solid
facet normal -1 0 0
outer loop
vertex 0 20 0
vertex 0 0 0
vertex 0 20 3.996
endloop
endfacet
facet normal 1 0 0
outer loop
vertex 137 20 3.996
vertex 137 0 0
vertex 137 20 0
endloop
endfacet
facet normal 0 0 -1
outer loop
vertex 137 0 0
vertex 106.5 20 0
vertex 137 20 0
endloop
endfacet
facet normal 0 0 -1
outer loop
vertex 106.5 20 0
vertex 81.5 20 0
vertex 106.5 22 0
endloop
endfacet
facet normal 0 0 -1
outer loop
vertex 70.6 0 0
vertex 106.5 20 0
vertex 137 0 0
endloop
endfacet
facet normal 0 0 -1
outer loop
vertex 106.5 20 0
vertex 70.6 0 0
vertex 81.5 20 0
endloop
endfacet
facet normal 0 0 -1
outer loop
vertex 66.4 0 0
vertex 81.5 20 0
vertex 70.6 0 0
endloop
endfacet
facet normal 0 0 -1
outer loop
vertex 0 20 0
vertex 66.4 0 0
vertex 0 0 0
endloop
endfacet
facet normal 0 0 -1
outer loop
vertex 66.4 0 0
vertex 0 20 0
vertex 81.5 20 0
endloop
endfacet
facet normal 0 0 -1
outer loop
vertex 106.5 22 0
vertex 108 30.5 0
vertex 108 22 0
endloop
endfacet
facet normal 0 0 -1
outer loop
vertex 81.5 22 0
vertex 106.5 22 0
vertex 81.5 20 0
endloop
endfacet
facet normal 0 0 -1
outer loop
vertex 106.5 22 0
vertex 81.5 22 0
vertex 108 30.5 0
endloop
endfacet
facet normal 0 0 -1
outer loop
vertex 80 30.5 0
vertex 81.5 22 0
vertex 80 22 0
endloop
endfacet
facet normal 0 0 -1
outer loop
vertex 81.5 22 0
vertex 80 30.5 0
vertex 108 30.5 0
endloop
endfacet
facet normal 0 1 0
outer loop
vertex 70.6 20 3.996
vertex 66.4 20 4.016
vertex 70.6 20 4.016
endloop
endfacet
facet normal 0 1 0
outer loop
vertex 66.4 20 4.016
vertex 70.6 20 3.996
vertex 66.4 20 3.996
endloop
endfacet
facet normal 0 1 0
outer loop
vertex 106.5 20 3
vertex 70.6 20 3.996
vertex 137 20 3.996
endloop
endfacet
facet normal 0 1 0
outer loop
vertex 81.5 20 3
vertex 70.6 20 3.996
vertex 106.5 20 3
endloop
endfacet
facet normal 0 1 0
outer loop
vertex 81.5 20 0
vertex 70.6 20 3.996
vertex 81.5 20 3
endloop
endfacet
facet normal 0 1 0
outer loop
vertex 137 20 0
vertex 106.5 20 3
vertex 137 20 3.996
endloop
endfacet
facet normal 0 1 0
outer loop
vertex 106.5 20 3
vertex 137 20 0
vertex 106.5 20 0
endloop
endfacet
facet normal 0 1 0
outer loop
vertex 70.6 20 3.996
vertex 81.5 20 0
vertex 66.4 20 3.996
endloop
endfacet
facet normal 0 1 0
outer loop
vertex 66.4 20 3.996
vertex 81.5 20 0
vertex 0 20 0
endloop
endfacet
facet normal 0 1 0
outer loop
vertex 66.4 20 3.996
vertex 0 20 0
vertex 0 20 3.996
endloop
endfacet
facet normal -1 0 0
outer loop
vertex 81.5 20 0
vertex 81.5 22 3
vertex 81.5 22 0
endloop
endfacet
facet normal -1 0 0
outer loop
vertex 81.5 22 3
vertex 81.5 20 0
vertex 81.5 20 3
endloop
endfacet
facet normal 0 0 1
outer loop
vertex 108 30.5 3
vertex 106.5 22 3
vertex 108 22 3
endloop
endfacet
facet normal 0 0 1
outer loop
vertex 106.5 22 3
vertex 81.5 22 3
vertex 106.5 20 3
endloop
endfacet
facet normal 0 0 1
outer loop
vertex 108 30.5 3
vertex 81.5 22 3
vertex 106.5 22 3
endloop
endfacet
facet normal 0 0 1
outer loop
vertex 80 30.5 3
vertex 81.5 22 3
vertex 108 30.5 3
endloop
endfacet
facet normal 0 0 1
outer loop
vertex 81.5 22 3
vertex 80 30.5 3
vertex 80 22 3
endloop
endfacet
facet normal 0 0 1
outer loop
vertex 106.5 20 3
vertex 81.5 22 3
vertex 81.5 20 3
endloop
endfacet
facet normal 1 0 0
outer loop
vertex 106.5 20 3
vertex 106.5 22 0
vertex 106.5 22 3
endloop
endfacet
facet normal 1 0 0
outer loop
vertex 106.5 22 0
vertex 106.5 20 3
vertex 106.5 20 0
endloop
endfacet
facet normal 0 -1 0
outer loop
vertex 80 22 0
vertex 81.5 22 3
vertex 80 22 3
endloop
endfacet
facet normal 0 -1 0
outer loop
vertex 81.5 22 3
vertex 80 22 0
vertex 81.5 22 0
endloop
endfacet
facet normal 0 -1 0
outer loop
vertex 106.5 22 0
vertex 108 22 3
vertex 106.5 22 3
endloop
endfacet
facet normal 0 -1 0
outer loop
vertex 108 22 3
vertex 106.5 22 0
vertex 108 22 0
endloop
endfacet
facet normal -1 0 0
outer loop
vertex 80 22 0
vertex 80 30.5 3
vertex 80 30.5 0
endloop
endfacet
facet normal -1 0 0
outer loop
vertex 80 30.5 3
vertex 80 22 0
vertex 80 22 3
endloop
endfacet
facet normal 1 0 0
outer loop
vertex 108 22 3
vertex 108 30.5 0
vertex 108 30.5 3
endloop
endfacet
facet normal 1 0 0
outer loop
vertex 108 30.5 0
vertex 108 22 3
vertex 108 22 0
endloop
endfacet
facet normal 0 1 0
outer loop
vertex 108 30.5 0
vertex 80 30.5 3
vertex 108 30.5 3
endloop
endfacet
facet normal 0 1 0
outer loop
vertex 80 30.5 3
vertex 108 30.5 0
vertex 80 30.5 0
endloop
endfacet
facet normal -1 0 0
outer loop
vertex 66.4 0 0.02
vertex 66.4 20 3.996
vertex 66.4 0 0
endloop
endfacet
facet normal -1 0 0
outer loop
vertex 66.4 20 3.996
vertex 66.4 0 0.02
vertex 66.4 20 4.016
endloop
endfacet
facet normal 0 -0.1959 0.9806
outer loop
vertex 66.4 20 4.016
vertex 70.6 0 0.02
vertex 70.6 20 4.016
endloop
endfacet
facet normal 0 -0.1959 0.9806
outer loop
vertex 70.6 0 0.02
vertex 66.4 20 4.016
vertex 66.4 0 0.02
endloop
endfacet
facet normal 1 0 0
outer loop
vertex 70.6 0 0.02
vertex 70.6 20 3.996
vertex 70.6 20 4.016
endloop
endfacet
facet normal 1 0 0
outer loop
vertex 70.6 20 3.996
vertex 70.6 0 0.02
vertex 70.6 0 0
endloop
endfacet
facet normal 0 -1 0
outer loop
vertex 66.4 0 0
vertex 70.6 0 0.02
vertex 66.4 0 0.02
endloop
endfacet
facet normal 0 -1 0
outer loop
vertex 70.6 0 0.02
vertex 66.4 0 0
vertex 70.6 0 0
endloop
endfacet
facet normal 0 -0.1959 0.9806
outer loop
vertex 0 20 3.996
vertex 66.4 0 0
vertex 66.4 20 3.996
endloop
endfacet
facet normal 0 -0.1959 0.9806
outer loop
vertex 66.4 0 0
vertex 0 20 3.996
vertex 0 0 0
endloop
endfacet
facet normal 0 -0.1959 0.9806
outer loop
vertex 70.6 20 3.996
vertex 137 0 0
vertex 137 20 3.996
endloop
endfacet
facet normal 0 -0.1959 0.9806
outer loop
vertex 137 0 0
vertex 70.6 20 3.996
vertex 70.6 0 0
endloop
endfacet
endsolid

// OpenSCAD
//
// ktCAR3
//

gap1 = 0.001;
gap2 = 0.002;



base();
line();


module base()
{
    color( "Gray" ) difference()
    {
        union()
        {
            cube( [137, 20, 4] );
            translate( [80+1.5, 20, 0] ) cube( [25, 2, 3] );
            translate( [80, 22, 0] ) cube( [28, 8.5, 3] );
        }
        rotate( [11.3, 0, 0] ) cube( [137, 30, 5] );
        line();
    }
}

module line()
{
    color( "White" ) translate( [137/2-4.2/2, 0, -1] )
    {
        difference()
        {
            rotate( [11.3, 0, 0] ) cube( [4.2, 30, 1] );
            translate( [-1, -1, 0] ) cube( [6, 1, 2] );
            translate( [-1, -1, -1] ) cube( [6, 30, 2] );
            translate( [-1, 20, 0] ) cube( [6, 30, 10] );
        }
    }
}
